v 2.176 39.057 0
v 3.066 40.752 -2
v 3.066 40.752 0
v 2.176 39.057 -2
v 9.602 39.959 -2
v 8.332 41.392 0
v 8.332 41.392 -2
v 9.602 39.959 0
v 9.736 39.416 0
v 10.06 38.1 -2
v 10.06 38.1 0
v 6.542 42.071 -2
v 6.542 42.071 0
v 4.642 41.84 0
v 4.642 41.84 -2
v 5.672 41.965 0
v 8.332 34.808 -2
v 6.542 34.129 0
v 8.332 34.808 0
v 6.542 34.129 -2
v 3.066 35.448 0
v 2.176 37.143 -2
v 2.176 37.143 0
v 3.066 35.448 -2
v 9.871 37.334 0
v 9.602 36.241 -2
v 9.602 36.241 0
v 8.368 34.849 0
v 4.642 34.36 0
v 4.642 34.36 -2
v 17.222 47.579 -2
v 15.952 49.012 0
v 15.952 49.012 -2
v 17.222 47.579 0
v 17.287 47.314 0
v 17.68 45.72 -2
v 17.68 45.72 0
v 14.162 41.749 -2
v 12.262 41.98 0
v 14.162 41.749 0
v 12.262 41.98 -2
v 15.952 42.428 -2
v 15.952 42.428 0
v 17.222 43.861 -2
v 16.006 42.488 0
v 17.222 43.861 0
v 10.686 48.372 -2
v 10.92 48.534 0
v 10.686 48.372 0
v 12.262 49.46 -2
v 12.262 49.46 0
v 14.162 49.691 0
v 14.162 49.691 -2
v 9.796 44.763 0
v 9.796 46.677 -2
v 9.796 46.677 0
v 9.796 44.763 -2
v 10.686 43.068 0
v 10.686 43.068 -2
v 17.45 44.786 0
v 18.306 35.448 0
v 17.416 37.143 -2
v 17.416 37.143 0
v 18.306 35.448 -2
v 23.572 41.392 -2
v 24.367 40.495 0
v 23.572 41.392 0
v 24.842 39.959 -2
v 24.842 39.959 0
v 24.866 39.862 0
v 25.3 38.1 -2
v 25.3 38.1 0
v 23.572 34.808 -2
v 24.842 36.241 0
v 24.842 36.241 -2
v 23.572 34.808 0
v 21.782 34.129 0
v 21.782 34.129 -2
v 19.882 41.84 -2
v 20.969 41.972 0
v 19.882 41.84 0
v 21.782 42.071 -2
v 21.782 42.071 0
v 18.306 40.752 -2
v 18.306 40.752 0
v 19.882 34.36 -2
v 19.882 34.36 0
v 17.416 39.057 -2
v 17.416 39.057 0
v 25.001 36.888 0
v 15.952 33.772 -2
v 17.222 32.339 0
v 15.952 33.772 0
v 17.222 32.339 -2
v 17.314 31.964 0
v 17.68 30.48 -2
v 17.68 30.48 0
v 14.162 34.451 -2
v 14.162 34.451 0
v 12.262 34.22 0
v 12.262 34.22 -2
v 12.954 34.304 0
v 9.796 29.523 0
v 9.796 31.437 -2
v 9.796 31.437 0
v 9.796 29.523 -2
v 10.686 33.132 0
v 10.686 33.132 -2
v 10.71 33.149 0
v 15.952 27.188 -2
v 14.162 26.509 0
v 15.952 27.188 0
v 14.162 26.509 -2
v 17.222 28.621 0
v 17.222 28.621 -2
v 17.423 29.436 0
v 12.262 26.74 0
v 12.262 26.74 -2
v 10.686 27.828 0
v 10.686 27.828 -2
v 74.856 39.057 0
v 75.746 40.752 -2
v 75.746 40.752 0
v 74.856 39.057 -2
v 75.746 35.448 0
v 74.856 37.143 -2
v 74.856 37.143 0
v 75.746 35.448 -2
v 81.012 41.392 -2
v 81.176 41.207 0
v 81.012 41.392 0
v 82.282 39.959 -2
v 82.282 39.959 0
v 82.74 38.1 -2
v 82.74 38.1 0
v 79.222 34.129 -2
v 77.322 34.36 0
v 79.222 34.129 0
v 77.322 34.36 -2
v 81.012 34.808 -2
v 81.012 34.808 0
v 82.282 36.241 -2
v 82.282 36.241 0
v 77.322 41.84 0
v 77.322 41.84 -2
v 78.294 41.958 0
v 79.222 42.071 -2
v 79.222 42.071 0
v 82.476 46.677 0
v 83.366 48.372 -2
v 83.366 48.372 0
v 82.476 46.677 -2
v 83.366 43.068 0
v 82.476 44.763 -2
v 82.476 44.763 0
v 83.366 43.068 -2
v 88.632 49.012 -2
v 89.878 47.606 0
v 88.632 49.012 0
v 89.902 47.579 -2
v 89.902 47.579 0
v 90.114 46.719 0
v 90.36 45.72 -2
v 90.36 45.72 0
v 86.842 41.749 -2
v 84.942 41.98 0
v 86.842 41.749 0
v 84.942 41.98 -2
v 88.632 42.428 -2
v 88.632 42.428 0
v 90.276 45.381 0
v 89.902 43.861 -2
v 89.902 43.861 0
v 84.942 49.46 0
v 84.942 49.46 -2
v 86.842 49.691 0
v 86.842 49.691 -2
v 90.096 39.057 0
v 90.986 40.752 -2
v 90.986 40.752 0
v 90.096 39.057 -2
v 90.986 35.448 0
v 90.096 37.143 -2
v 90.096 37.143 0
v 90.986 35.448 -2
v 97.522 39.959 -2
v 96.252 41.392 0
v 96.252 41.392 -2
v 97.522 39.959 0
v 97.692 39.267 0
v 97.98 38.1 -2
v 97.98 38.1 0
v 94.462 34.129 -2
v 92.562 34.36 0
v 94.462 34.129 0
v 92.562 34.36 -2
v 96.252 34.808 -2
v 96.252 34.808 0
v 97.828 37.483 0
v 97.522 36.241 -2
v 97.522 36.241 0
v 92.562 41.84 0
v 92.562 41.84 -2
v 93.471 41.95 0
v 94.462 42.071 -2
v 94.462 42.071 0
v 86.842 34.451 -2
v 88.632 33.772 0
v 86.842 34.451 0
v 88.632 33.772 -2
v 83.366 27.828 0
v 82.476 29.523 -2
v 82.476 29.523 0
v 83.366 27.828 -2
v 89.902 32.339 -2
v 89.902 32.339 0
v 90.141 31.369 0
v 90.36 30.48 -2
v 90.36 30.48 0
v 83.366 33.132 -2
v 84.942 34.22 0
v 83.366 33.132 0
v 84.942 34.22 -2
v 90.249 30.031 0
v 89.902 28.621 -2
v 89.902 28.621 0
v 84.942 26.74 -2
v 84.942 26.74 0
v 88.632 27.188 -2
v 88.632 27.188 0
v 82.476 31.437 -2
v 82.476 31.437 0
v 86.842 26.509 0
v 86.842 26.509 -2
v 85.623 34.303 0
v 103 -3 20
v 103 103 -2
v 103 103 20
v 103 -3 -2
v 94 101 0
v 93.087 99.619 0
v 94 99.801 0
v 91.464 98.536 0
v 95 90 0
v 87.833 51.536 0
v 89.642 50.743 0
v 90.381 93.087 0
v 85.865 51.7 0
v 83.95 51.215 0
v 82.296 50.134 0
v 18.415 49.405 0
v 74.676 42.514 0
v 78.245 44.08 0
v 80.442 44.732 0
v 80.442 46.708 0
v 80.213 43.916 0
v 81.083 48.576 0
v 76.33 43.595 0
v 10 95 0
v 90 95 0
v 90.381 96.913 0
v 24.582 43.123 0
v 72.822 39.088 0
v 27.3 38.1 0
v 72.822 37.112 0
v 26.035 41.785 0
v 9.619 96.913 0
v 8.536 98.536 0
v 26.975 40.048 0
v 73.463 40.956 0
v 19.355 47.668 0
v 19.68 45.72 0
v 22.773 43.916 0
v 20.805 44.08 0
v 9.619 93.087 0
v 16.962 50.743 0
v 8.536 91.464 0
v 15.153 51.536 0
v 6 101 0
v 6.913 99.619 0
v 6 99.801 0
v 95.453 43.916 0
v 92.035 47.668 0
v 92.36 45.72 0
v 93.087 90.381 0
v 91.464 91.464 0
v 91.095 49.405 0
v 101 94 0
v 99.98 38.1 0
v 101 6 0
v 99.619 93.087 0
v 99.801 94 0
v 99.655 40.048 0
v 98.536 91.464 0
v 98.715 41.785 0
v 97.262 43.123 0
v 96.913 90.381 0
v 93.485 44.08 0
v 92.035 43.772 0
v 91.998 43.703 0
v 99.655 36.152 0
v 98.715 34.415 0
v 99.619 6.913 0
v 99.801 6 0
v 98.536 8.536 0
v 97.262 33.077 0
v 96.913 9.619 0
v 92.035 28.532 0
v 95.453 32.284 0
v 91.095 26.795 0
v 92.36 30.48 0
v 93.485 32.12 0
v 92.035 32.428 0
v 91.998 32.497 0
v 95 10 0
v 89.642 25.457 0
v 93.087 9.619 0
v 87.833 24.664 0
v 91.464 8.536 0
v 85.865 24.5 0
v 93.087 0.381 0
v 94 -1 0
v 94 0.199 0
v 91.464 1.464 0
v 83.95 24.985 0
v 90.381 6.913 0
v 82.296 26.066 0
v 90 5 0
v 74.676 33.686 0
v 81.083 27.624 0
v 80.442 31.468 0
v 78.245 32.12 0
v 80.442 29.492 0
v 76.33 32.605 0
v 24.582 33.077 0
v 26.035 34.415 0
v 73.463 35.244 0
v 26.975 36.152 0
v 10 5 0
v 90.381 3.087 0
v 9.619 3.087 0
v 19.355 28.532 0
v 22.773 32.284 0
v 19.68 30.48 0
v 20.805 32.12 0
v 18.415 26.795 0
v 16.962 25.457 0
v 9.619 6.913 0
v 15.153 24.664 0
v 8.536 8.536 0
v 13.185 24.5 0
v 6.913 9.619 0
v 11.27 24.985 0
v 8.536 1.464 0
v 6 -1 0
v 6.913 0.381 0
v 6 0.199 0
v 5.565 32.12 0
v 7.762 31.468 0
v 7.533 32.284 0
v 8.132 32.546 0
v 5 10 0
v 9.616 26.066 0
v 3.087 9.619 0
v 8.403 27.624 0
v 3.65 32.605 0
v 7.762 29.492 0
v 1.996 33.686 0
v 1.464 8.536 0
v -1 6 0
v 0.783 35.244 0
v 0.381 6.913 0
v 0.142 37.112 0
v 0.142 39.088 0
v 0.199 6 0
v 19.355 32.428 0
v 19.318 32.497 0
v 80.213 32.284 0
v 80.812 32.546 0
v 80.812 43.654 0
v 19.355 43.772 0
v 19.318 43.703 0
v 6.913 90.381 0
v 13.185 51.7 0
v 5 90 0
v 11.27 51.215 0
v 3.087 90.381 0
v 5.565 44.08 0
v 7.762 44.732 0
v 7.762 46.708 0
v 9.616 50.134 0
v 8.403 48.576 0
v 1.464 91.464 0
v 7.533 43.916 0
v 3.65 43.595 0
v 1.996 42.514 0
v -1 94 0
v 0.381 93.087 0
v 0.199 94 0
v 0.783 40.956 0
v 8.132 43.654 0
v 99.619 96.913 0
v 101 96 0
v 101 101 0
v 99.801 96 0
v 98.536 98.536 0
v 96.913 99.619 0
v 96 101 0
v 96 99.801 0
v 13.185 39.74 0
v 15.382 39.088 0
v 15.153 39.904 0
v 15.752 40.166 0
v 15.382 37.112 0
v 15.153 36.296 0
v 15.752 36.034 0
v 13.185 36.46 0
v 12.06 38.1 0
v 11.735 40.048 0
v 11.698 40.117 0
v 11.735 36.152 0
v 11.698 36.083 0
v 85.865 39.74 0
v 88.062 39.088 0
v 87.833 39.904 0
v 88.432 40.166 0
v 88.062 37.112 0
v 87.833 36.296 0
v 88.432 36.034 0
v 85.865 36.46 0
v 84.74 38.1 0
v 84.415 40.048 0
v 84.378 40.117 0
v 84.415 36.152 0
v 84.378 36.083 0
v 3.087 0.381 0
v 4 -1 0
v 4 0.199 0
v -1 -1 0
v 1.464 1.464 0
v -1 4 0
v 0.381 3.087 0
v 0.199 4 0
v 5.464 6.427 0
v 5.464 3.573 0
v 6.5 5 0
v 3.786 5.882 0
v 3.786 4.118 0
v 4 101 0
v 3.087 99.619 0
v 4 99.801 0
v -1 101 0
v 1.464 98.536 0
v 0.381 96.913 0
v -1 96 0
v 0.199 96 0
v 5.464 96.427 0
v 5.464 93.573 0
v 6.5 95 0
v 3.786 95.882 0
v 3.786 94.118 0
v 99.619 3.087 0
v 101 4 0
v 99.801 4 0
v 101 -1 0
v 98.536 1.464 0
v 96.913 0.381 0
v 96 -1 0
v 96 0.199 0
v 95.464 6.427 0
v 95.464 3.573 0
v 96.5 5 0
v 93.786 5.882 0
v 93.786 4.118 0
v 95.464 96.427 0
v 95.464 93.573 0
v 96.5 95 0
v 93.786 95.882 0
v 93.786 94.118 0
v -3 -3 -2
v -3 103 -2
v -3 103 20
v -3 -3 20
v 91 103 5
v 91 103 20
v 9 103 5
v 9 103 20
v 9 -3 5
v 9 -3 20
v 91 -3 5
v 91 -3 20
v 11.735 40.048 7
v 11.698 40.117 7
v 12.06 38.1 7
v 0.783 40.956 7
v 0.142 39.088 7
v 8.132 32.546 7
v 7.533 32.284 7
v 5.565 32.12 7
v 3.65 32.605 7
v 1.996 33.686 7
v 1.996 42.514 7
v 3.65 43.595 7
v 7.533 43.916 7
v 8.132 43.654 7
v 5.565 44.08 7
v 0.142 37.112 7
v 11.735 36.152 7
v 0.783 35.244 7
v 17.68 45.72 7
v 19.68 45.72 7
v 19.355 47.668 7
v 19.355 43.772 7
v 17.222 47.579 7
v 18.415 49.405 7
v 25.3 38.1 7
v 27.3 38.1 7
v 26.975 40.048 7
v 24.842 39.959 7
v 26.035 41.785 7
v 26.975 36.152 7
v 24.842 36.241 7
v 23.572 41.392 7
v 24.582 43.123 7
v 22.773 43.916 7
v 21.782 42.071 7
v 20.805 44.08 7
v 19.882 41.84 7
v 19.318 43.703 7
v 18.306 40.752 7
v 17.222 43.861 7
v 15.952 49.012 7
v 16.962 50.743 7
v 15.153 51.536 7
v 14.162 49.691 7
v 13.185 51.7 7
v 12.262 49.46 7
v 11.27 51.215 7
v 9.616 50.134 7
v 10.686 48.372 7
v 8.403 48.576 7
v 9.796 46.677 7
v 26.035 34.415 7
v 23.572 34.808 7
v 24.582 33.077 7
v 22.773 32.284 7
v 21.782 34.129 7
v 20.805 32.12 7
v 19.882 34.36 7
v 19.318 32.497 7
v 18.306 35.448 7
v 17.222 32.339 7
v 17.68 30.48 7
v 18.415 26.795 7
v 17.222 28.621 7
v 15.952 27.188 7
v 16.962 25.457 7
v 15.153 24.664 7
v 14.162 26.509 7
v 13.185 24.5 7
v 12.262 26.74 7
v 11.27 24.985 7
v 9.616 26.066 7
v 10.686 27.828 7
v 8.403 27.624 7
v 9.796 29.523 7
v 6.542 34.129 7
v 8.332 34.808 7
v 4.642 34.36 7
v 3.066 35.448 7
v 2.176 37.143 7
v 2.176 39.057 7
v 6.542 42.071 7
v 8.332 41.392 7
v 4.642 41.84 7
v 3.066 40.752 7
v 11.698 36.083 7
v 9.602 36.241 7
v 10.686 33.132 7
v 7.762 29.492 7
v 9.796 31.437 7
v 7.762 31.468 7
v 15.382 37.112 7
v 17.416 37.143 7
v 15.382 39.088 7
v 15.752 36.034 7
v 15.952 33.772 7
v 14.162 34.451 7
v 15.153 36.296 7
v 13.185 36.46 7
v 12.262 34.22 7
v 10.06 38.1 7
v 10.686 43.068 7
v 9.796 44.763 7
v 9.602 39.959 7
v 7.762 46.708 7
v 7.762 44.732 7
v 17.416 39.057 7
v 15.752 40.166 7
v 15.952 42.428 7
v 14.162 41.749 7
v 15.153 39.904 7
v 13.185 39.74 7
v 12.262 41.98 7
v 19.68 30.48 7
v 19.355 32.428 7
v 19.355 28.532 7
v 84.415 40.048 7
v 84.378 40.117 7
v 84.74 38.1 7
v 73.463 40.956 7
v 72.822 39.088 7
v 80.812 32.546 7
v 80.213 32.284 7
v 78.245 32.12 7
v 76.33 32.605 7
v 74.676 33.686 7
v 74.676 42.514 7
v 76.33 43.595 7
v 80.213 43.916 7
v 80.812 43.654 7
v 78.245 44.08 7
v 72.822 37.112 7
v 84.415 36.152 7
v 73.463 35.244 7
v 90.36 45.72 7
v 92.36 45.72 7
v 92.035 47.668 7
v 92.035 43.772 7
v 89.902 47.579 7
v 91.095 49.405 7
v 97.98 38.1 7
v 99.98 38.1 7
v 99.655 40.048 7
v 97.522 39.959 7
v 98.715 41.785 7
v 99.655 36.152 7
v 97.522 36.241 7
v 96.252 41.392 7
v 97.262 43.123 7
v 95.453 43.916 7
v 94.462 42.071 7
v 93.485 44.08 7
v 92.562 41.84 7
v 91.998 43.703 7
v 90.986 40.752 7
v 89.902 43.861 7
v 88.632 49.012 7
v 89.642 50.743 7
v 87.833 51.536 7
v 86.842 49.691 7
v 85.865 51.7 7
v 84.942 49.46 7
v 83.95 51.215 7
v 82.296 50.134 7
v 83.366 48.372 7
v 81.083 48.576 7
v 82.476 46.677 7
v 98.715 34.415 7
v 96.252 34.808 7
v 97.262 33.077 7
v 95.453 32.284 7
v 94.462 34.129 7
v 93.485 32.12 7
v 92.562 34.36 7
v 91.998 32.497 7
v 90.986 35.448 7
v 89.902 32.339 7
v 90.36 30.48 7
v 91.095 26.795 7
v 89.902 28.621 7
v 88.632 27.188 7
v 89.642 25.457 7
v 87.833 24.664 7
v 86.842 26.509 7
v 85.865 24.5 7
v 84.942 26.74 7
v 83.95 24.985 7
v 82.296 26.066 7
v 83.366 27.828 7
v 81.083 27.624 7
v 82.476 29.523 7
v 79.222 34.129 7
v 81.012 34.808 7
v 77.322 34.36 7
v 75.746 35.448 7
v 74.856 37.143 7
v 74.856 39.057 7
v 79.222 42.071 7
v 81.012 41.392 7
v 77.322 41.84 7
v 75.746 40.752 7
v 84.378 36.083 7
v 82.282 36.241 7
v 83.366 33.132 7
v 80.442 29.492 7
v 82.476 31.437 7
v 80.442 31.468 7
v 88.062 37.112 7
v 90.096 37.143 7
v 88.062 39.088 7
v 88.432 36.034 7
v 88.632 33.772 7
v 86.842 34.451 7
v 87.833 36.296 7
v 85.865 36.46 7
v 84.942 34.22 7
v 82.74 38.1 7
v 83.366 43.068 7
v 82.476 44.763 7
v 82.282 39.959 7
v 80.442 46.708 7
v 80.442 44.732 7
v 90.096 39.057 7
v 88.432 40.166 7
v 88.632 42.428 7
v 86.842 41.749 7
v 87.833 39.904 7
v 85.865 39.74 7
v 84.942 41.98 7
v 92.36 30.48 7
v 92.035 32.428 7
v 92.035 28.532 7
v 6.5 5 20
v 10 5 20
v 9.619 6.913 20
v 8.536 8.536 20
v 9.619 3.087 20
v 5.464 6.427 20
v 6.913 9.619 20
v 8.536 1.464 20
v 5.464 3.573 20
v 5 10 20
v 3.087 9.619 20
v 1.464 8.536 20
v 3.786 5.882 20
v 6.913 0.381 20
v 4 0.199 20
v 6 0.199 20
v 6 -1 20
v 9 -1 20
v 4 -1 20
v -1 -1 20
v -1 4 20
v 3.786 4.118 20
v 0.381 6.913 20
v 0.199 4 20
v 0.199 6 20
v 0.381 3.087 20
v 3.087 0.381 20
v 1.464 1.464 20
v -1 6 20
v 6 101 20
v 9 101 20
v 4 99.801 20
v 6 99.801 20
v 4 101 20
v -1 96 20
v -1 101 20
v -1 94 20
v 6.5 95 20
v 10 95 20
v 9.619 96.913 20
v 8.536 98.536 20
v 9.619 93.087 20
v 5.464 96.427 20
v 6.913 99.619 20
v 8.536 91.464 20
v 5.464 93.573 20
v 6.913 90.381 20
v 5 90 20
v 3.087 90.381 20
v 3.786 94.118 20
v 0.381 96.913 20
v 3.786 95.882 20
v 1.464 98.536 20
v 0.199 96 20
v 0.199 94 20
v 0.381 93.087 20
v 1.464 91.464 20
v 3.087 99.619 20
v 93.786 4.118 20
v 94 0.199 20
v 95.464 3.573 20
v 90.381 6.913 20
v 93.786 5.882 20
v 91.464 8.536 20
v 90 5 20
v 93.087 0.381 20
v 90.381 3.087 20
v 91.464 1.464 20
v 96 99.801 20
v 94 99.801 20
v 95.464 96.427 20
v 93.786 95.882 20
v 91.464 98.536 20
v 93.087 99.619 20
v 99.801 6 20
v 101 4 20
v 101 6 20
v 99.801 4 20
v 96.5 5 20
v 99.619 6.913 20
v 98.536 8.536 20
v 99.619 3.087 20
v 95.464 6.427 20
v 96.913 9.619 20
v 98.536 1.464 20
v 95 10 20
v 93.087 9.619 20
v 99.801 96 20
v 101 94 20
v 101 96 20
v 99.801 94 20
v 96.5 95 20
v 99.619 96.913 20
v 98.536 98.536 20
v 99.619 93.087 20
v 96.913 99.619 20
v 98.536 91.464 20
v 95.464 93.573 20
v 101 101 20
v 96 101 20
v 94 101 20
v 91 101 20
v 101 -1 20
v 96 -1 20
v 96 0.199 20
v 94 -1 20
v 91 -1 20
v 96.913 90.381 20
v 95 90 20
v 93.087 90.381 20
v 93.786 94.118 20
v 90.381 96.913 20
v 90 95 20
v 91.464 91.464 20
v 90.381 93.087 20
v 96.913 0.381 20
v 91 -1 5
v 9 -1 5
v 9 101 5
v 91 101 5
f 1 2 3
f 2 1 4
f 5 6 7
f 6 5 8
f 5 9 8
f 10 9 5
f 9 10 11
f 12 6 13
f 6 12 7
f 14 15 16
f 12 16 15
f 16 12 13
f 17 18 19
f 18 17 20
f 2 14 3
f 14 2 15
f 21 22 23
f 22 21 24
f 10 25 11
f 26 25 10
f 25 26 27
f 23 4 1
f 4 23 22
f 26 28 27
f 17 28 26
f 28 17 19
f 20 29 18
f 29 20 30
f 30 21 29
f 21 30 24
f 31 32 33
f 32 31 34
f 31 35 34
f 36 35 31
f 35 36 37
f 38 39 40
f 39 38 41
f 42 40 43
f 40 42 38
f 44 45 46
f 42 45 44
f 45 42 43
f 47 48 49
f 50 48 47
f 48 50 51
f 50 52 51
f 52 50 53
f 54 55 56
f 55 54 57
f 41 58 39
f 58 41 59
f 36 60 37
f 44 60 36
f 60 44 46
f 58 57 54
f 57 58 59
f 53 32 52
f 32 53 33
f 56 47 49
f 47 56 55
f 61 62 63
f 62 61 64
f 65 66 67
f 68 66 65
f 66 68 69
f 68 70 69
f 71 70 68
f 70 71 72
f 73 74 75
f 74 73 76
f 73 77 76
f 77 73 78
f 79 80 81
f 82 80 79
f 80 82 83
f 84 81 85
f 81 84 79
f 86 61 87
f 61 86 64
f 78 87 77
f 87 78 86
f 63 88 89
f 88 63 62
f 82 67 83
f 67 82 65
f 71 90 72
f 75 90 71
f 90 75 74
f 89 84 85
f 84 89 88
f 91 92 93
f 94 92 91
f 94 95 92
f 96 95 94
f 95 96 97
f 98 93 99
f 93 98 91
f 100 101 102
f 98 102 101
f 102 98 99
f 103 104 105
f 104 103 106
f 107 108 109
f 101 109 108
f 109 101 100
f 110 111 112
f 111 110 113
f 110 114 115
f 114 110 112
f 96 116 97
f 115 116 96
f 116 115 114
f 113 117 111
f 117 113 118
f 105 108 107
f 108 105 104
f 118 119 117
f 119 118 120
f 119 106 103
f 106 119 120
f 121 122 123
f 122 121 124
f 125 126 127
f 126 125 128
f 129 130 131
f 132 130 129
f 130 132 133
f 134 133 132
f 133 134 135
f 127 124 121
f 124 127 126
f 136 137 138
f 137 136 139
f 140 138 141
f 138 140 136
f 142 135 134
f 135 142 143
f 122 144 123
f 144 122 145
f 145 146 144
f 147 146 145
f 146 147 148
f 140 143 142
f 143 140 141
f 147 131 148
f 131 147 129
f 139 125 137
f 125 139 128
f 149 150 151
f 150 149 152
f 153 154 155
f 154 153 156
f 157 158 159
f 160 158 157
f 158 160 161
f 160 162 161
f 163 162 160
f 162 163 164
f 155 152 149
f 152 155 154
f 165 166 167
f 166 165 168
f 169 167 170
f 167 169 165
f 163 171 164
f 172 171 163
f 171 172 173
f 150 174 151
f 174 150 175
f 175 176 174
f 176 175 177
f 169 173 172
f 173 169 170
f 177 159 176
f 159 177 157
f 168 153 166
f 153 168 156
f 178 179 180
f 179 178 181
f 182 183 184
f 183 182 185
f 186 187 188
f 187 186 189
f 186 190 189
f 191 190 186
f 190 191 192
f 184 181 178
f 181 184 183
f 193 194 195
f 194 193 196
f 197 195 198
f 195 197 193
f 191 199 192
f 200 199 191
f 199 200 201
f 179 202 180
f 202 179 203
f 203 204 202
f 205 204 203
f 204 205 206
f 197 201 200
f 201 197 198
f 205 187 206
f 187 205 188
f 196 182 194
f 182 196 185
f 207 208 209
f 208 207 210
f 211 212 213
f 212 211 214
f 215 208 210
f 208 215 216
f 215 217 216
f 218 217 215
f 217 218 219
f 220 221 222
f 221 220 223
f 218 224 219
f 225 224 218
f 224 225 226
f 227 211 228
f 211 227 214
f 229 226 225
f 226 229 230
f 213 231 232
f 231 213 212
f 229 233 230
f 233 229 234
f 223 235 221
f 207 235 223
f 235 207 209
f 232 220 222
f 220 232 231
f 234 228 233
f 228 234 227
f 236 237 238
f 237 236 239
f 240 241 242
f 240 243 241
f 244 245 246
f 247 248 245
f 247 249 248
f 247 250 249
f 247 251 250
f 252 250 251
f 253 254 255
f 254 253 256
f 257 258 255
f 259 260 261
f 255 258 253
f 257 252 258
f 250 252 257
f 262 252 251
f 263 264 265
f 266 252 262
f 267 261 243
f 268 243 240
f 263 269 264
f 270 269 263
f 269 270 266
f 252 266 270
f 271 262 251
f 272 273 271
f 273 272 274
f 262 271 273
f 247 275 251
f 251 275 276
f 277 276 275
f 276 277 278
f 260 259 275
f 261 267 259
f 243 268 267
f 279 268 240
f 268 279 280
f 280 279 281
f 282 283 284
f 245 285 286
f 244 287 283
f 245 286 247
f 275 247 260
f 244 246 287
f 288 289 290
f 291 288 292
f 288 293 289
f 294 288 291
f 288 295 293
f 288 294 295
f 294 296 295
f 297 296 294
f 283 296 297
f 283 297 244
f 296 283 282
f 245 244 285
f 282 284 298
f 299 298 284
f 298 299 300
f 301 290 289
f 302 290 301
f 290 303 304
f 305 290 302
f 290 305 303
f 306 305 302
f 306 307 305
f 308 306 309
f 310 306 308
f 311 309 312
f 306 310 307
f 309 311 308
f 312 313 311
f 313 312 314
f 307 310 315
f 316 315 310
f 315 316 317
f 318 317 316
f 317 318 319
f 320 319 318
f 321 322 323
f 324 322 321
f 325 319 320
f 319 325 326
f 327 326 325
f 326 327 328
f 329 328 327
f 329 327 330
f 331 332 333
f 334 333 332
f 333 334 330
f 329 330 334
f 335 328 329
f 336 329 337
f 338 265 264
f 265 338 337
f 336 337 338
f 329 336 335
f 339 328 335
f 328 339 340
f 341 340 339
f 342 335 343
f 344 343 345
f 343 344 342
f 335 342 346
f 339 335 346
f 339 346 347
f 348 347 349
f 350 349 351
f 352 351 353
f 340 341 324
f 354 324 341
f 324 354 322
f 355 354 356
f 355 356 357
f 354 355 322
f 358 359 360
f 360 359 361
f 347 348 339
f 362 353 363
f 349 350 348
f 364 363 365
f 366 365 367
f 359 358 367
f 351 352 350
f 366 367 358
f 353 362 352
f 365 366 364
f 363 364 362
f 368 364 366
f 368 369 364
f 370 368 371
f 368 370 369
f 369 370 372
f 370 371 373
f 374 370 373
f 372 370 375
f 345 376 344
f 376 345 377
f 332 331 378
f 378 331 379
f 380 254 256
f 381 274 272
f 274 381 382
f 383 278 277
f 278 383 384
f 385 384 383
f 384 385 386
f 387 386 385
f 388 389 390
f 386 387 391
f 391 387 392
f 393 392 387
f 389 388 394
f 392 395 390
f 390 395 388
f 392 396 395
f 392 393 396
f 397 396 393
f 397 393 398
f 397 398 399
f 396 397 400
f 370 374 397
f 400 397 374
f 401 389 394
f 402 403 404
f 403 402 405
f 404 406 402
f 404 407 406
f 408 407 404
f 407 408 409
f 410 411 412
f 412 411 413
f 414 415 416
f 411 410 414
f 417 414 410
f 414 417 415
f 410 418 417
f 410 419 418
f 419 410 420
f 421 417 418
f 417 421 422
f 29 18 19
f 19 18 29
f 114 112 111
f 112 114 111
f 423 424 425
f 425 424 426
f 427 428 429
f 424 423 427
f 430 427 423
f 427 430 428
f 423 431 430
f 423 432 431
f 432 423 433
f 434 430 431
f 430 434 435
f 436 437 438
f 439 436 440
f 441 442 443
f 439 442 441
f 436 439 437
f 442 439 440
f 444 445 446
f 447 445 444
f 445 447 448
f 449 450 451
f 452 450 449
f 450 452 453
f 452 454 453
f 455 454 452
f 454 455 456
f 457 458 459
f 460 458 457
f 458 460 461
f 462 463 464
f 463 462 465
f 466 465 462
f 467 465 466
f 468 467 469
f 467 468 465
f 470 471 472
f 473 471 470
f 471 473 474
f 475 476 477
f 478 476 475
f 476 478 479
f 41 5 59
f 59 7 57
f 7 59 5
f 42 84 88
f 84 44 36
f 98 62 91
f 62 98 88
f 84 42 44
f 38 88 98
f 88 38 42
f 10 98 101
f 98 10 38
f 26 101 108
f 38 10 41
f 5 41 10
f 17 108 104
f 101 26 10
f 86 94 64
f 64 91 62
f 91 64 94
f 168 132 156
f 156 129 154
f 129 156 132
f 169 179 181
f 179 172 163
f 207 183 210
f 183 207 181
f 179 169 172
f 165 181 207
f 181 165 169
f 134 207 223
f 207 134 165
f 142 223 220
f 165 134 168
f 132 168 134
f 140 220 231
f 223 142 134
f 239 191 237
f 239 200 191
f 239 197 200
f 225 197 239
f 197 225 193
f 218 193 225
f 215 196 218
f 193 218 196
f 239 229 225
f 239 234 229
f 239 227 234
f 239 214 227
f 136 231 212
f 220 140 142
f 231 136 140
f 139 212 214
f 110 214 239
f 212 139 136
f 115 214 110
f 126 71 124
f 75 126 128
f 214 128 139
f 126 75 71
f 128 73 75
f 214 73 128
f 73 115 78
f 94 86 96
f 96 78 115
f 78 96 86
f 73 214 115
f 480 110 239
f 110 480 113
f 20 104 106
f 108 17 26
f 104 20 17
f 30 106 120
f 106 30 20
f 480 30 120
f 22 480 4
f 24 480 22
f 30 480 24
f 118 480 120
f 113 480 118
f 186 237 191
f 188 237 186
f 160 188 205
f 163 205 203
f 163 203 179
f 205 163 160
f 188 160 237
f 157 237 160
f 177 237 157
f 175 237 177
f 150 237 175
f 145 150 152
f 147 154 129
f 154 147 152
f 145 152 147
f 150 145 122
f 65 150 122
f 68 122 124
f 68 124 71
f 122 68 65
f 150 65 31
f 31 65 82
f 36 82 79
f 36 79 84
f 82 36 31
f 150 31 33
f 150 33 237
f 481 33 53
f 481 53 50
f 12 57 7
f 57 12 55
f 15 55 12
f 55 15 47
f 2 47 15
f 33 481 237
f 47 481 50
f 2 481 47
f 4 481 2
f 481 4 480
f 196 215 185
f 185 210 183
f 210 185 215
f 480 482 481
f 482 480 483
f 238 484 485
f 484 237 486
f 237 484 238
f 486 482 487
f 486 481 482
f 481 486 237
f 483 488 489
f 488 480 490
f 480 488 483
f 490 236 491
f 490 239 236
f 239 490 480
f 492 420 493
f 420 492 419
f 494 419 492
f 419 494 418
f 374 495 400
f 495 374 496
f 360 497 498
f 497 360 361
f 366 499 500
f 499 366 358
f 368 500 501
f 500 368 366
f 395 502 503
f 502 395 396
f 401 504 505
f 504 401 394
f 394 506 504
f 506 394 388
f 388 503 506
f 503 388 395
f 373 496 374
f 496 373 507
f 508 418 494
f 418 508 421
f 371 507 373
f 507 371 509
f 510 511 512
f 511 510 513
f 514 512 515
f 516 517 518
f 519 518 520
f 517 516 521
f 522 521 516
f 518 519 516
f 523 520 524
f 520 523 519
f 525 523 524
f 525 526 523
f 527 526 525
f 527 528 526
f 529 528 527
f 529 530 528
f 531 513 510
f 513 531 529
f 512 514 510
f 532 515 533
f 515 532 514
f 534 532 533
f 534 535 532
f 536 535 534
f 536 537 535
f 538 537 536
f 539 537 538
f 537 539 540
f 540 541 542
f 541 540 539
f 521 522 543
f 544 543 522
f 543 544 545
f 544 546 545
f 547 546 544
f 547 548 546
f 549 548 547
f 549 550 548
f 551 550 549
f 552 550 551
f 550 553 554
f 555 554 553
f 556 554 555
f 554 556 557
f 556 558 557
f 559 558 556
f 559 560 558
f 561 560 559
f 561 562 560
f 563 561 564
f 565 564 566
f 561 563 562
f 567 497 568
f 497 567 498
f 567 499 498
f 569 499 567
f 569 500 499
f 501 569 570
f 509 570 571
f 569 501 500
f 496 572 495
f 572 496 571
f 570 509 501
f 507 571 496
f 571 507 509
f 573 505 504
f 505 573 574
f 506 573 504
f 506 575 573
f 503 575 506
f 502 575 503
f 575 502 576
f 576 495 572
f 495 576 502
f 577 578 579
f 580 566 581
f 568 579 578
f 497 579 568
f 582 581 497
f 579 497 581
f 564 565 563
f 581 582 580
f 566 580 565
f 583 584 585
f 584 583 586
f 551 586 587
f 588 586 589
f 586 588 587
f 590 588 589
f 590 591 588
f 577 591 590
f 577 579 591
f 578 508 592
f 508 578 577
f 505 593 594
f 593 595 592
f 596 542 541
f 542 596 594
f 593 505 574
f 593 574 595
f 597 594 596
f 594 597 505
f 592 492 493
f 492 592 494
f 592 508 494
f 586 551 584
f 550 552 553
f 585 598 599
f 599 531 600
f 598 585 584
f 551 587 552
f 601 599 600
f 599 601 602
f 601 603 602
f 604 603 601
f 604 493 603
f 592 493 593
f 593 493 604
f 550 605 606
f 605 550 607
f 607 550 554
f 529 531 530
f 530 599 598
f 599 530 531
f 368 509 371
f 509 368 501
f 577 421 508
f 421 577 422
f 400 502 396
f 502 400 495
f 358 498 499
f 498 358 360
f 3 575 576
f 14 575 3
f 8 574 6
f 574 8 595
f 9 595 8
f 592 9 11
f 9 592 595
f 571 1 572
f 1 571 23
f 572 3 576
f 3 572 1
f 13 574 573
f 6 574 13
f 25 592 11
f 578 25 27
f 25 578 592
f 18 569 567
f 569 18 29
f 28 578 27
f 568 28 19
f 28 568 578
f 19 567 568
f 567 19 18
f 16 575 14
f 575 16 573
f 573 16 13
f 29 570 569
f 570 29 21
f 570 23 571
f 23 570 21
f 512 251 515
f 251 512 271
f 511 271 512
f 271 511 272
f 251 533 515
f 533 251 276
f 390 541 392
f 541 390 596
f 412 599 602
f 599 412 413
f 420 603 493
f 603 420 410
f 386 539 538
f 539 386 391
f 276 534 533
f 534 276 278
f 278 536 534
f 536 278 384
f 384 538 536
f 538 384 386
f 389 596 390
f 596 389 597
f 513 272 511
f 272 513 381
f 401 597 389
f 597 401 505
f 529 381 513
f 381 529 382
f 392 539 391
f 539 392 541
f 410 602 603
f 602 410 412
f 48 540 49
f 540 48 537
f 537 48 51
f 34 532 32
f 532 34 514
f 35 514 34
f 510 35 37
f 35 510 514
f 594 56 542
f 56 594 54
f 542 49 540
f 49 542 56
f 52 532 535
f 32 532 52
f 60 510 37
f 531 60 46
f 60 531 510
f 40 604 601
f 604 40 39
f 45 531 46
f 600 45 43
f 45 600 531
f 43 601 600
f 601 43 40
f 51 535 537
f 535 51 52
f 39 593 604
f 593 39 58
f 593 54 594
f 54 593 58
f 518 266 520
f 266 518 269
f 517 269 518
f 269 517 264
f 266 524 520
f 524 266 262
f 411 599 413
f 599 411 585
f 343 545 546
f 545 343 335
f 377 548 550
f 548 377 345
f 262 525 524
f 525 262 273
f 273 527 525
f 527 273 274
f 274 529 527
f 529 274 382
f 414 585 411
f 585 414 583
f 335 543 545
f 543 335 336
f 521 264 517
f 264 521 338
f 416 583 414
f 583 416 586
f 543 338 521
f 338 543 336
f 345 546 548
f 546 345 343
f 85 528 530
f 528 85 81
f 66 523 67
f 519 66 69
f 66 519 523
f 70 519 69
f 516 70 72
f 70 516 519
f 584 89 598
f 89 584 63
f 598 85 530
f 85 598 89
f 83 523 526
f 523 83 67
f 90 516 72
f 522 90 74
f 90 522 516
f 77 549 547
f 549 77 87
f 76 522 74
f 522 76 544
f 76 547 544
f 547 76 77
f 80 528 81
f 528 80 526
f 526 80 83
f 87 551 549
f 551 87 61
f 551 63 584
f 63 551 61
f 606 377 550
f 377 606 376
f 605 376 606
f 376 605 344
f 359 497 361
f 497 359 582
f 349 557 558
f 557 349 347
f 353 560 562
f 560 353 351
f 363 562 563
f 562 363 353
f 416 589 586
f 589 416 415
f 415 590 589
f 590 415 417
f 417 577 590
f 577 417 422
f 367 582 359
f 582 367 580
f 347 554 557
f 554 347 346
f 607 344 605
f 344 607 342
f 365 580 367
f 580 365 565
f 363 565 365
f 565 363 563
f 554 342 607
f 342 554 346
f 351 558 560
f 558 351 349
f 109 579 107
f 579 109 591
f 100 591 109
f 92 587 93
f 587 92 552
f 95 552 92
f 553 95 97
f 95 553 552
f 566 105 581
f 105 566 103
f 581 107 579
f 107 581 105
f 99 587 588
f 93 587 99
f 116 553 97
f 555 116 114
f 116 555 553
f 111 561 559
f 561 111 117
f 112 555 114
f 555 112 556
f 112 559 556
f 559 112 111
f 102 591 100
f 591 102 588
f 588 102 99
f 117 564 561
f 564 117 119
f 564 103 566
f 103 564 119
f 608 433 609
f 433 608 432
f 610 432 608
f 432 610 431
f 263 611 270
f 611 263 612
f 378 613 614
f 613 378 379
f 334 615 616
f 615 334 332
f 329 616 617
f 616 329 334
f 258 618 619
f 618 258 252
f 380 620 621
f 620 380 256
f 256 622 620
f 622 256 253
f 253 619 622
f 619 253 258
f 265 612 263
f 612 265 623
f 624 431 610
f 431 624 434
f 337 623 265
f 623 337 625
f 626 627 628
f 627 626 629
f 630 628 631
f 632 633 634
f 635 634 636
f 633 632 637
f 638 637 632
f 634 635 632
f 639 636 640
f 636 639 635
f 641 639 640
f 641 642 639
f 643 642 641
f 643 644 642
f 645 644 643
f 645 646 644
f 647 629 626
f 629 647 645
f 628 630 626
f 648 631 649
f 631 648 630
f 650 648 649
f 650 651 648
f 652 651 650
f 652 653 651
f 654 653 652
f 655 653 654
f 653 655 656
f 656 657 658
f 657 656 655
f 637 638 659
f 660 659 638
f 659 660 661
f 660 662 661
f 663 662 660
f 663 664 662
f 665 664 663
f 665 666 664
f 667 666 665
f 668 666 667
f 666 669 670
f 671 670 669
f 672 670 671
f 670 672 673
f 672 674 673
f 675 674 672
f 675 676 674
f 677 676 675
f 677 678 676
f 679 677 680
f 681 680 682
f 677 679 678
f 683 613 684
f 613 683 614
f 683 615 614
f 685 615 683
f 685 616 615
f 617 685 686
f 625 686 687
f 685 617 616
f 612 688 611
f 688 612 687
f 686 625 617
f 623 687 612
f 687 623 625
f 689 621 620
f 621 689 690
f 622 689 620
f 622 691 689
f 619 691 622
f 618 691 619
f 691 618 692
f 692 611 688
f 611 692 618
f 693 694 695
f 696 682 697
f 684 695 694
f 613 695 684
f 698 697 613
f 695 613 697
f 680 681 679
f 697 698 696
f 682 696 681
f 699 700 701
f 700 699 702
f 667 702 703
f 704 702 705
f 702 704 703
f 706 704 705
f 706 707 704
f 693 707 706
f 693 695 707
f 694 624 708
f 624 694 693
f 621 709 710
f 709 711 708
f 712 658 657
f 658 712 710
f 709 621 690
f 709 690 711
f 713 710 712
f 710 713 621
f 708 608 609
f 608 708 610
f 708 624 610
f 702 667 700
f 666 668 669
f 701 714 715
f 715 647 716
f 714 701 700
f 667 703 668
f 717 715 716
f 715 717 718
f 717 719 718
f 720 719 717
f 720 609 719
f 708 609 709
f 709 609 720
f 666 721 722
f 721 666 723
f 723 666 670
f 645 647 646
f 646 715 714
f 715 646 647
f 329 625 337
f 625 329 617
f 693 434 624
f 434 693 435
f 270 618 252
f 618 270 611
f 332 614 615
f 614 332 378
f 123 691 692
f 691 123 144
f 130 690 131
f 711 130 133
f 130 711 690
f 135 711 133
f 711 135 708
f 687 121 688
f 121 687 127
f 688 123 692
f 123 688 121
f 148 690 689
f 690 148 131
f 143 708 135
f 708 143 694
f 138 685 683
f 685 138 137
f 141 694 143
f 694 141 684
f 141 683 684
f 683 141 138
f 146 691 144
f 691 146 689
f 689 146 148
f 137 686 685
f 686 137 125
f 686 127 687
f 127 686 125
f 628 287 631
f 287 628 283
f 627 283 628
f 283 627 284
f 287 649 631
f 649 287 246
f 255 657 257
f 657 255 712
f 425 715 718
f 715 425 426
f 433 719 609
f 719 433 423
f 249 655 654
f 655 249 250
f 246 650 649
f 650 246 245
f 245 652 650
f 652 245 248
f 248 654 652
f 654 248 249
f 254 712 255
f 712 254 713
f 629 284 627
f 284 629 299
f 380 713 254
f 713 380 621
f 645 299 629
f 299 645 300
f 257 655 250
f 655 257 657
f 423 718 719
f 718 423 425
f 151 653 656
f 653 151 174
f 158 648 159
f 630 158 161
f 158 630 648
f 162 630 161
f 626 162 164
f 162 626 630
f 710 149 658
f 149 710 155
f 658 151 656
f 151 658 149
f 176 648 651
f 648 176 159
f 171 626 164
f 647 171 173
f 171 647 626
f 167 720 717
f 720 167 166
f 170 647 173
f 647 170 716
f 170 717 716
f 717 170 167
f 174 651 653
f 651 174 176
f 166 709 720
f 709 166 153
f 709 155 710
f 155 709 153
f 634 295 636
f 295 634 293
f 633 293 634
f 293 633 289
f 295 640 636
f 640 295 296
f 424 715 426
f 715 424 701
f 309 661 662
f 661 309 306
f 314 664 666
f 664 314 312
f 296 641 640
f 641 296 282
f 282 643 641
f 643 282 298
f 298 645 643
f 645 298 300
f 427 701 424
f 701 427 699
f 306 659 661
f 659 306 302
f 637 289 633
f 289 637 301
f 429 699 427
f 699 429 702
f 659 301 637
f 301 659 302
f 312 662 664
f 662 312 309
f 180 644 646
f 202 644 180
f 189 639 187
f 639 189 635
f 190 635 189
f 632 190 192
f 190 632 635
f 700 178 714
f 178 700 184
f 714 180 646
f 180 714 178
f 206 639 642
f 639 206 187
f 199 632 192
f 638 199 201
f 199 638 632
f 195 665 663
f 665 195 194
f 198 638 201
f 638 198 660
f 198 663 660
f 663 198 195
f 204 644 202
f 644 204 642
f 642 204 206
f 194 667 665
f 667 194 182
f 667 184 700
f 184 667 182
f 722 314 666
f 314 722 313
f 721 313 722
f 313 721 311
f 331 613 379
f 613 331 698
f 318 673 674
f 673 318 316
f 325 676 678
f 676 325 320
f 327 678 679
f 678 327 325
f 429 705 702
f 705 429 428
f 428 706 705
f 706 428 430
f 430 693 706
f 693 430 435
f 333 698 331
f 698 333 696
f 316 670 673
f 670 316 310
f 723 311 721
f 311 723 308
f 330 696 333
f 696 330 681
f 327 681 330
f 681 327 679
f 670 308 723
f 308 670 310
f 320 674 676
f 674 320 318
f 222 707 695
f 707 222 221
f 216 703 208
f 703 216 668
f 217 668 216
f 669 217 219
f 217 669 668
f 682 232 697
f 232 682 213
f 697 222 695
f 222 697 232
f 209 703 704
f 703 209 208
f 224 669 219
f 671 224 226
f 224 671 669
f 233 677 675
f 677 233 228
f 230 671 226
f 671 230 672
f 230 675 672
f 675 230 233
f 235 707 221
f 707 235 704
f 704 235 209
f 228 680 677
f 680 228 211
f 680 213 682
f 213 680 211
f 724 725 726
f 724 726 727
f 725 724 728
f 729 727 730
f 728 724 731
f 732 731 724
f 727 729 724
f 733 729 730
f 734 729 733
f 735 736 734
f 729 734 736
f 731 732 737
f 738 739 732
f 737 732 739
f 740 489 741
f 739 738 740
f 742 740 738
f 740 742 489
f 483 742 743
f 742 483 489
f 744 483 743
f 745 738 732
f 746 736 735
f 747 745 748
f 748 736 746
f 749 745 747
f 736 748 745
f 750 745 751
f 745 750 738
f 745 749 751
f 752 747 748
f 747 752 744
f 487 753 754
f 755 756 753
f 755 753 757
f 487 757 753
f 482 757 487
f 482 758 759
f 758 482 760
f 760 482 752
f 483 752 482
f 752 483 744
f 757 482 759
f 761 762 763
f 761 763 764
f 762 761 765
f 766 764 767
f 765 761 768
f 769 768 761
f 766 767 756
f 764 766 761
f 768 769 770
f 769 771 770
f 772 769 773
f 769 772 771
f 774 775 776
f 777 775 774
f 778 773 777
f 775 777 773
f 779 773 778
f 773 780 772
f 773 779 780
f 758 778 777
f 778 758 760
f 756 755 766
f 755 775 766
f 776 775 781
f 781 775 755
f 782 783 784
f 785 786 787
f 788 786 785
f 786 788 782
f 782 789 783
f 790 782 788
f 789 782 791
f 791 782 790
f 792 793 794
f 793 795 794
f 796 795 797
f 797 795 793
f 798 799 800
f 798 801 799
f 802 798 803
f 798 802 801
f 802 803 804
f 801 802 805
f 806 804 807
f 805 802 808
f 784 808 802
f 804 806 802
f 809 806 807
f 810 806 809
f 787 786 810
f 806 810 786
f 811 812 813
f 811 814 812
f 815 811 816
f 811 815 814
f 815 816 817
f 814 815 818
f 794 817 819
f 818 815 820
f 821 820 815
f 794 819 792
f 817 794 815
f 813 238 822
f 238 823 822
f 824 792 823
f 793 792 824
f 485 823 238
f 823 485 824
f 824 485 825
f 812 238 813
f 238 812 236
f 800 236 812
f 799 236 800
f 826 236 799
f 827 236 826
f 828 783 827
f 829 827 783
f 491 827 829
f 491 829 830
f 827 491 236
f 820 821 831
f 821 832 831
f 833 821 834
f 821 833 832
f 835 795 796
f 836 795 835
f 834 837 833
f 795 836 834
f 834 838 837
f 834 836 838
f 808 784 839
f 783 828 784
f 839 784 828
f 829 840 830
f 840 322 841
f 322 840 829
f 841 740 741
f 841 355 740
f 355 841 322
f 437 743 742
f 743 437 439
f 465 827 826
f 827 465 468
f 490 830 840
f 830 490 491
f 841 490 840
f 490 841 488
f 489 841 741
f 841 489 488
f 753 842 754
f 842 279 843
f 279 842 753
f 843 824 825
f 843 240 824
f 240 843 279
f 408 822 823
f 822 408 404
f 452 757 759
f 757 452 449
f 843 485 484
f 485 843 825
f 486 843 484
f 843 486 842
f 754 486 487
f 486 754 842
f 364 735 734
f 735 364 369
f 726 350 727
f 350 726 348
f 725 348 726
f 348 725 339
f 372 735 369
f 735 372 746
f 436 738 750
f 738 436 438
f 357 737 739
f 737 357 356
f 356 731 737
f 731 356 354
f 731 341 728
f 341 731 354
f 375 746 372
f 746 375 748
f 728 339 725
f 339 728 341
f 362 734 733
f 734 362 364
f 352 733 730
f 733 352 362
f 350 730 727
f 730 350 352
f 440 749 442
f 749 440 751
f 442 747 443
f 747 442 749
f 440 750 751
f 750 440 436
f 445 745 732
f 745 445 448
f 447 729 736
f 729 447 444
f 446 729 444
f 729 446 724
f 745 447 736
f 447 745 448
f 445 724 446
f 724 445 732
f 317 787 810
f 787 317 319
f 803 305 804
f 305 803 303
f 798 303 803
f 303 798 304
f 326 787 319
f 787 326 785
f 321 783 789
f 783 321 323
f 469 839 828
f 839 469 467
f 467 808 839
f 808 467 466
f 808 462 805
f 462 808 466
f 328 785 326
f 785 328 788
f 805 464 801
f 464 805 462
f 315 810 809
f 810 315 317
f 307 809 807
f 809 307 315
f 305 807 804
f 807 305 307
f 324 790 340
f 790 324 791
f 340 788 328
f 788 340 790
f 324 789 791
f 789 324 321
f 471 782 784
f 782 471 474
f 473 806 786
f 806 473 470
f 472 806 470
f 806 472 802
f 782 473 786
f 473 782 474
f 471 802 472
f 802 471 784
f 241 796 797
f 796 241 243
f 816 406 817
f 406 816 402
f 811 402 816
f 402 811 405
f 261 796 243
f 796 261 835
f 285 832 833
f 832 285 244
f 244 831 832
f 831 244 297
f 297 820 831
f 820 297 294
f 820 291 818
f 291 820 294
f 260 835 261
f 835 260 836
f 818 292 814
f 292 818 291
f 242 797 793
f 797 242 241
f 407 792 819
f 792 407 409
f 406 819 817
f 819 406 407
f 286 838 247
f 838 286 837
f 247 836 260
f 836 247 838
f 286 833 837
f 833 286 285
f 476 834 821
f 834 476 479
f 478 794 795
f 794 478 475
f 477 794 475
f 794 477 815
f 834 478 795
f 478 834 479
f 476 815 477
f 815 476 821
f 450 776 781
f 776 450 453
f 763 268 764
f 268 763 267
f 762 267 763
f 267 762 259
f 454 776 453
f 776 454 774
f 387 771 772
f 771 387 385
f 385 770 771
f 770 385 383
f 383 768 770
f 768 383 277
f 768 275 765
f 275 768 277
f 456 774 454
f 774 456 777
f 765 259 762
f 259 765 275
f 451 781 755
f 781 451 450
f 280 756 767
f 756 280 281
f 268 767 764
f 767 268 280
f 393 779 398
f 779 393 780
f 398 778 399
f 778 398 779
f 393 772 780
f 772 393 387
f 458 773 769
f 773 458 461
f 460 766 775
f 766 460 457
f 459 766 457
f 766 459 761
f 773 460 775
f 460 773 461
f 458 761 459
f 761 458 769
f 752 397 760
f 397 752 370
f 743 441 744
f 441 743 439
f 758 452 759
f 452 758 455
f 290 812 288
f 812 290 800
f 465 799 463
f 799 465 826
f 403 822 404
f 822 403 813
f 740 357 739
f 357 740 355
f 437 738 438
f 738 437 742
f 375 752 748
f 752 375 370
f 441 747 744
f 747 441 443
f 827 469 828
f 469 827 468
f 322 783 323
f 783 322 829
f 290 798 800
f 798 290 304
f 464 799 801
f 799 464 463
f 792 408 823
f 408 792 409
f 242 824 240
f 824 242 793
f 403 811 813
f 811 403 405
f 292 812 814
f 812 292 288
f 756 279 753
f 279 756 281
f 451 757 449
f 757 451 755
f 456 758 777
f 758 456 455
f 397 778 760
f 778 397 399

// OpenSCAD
// top
translate([-3, -3, -2]) {
    difference() {
        cube([106, 106, 2], center = false);
        
        translate([3, 3, 0]) {
            translate([6.06, 38.1, -1]) {
                cylinder(4, 4, 4);
            }
            translate([13.68, 45.72, -1]) {
                cylinder(4, 4, 4);
            }
            translate([21.3, 38.1, -1]) {
                cylinder(4, 4, 4);
            }
            translate([13.68, 30.48, -1]) {
                cylinder(4, 4, 4);
            }
            
            translate([6.06+72.68, 38.1, -1]) {
                cylinder(4, 4, 4);
            }
            translate([13.68+72.68, 45.72, -1]) {
                cylinder(4, 4, 4);
            }
            translate([21.3+72.68, 38.1, -1]) {
                cylinder(4, 4, 4);
            }
            translate([13.68+72.68, 30.48, -1]) {
                cylinder(4, 4, 4);
            }
        }
    }
}

// buttons
translate([6.06, 38.1, 0]) {
    difference() {
        cylinder(7, 6, 6);
        cylinder(7, 4, 4);
    }
/*
// testing buttons
translate([0, 0, 7]) {
rotate([180, 0, 0]) {
translate([0, 0, -2]) {
// insert button here
difference() {
    cylinder(2, 5, 5);
    cylinder(9, 1.5, 1.5);
}
translate([0, 0, 2]) {
    difference() {
        cylinder(7+2+2.5, 3.75, 3.75);
        cylinder(9, 1.5, 1.5);
    }
}
// end of button
}}}
*/
}
translate([13.68, 45.72, 0]) {
    difference() {
        cylinder(7, 6, 6);
        cylinder(7, 4, 4);
    }
/*    
// testing buttons
translate([0, 0, 7]) {
rotate([180, 0, 0]) {
translate([0, 0, -2]) {
// insert button here
difference() {
    cylinder(2, 5, 5);
    cylinder(9, 1.5, 1.5);
}
translate([0, 0, 2]) {
    difference() {
        cylinder(7+2+2.5, 3.75, 3.75);
        cylinder(9, 1.5, 1.5);
    }
}
// end of button
}}}
*/
}
translate([21.3, 38.1, 0]) {
    difference() {
        cylinder(7, 6, 6);
        cylinder(7, 4, 4);
    }
/*   
// testing buttons
translate([0, 0, 7]) {
rotate([180, 0, 0]) {
translate([0, 0, -2]) {
// insert button here
difference() {
    cylinder(2, 5, 5);
    cylinder(9, 1.5, 1.5);
}
translate([0, 0, 2]) {
    difference() {
        cylinder(7+2+2.5, 3.75, 3.75);
        cylinder(9, 1.5, 1.5);
    }
}
// end of button
}}}
*/    
}
translate([13.68, 30.48, 0]) {
    difference() {
        cylinder(7, 6, 6);
        cylinder(7, 4, 4);
    }
/*    
// testing buttons
translate([0, 0, 7]) {
rotate([180, 0, 0]) {
translate([0, 0, -2]) {
// insert button here
difference() {
    cylinder(2, 5, 5);
    cylinder(9, 1.5, 1.5);
}
translate([0, 0, 2]) {
    difference() {
        cylinder(7+2+2.5, 3.75, 3.75);
        cylinder(9, 1.5, 1.5);
    }
}
// end of button
}}}
*/
}

translate([6.06+72.68, 38.1, 0]) {
    difference() {
        cylinder(7, 6, 6);
        cylinder(7, 4, 4);
    }
}
translate([13.68+72.68, 45.72, 0]) {
    difference() {
        cylinder(7, 6, 6);
        cylinder(7, 4, 4);
    }
}
translate([21.3+72.68, 38.1, 0]) {
    difference() {
        cylinder(7, 6, 6);
        cylinder(7, 4, 4);
    }
}
translate([13.68+72.68, 30.48, 0]) {
    difference() {
        cylinder(7, 6, 6);
        cylinder(7, 4, 4);
    }
}

// back
translate([-3, -3, 0]) {
    difference() {
        cube([106, 2, 20], center = false);
        translate([3+9, -1, 5]) {
            cube([82, 4, 16], center = false);
        }
    }
}

// front
translate([-3, 101, 0]) {
    difference() {
        cube([106, 2, 20], center = false);
        translate([3+9, -1, 5]) {
            cube([82, 4, 16], center = false);
        }
    }
}

// right
translate([-3, -3, 0]) {
    cube([2, 106, 20], center = false);
}

// left
translate([101, -3, 0]) {
    cube([2, 106, 20], center = false);
}

// corner
translate([5, 5, 0]) {
    difference() {
        cylinder(20, 5, 5);
        translate([0, 0, -1]) {
            cylinder(21.25, 1.5, 1.5);
        }
    }
}
translate([4, -1, 0]) {
    cube([2, 3, 20], center = false);
}
translate([-1, 4, 0]) {
    cube([3, 2, 20], center = false);
}

// corner
translate([95, 5, 0]) {
    difference() {
        cylinder(20, 5, 5);
        translate([0, 0, -1]) {
            cylinder(21.25, 1.5, 1.5);
        }
    }
}
translate([94, -1, 0]) {
    cube([2, 3, 20], center = false);
}
translate([99, 4, 0]) {
    cube([3, 2, 20], center = false);
}

// corner
translate([95, 95, 0]) {
    difference() {
        cylinder(20, 5, 5);
        translate([0, 0, -1]) {
            cylinder(21.25, 1.5, 1.5);
        }
    }
}
translate([94, 99, 0]) {
    cube([2, 3, 20], center = false);
}
translate([99, 94, 0]) {
    cube([3, 2, 20], center = false);
}

// corner
translate([5, 95, 0]) {
    difference() {
        cylinder(20, 5, 5);
        translate([0, 0, -1]) {
            cylinder(21.25, 1.5, 1.5);
        }
    }
}
translate([4, 99, 0]) {
    cube([2, 3, 20], center = false);
}
translate([-1, 94, 0]) {
    cube([3, 2, 20], center = false);
}


/*
// CSG.scad - Basic example of CSG usage

translate([-24,0,0]) {
    union() {
        cube(15, center=true);
        sphere(10);
    }
}

intersection() {
    cube(15, center=true);
    sphere(10);
}

translate([24,0,0]) {
    difference() {
        cube(15, center=true);
        sphere(10);
    }
}

echo(version=version());
// Written by Marius Kintel <marius@kintel.net>
//
// To the extent possible under law, the author(s) have dedicated all
// copyright and related and neighboring rights to this software to the
// public domain worldwide. This software is distributed without any
// warranty.
//
// You should have received a copy of the CC0 Public Domain
// Dedication along with this software.
// If not, see <http://creativecommons.org/publicdomain/zero/1.0/>.
*/
